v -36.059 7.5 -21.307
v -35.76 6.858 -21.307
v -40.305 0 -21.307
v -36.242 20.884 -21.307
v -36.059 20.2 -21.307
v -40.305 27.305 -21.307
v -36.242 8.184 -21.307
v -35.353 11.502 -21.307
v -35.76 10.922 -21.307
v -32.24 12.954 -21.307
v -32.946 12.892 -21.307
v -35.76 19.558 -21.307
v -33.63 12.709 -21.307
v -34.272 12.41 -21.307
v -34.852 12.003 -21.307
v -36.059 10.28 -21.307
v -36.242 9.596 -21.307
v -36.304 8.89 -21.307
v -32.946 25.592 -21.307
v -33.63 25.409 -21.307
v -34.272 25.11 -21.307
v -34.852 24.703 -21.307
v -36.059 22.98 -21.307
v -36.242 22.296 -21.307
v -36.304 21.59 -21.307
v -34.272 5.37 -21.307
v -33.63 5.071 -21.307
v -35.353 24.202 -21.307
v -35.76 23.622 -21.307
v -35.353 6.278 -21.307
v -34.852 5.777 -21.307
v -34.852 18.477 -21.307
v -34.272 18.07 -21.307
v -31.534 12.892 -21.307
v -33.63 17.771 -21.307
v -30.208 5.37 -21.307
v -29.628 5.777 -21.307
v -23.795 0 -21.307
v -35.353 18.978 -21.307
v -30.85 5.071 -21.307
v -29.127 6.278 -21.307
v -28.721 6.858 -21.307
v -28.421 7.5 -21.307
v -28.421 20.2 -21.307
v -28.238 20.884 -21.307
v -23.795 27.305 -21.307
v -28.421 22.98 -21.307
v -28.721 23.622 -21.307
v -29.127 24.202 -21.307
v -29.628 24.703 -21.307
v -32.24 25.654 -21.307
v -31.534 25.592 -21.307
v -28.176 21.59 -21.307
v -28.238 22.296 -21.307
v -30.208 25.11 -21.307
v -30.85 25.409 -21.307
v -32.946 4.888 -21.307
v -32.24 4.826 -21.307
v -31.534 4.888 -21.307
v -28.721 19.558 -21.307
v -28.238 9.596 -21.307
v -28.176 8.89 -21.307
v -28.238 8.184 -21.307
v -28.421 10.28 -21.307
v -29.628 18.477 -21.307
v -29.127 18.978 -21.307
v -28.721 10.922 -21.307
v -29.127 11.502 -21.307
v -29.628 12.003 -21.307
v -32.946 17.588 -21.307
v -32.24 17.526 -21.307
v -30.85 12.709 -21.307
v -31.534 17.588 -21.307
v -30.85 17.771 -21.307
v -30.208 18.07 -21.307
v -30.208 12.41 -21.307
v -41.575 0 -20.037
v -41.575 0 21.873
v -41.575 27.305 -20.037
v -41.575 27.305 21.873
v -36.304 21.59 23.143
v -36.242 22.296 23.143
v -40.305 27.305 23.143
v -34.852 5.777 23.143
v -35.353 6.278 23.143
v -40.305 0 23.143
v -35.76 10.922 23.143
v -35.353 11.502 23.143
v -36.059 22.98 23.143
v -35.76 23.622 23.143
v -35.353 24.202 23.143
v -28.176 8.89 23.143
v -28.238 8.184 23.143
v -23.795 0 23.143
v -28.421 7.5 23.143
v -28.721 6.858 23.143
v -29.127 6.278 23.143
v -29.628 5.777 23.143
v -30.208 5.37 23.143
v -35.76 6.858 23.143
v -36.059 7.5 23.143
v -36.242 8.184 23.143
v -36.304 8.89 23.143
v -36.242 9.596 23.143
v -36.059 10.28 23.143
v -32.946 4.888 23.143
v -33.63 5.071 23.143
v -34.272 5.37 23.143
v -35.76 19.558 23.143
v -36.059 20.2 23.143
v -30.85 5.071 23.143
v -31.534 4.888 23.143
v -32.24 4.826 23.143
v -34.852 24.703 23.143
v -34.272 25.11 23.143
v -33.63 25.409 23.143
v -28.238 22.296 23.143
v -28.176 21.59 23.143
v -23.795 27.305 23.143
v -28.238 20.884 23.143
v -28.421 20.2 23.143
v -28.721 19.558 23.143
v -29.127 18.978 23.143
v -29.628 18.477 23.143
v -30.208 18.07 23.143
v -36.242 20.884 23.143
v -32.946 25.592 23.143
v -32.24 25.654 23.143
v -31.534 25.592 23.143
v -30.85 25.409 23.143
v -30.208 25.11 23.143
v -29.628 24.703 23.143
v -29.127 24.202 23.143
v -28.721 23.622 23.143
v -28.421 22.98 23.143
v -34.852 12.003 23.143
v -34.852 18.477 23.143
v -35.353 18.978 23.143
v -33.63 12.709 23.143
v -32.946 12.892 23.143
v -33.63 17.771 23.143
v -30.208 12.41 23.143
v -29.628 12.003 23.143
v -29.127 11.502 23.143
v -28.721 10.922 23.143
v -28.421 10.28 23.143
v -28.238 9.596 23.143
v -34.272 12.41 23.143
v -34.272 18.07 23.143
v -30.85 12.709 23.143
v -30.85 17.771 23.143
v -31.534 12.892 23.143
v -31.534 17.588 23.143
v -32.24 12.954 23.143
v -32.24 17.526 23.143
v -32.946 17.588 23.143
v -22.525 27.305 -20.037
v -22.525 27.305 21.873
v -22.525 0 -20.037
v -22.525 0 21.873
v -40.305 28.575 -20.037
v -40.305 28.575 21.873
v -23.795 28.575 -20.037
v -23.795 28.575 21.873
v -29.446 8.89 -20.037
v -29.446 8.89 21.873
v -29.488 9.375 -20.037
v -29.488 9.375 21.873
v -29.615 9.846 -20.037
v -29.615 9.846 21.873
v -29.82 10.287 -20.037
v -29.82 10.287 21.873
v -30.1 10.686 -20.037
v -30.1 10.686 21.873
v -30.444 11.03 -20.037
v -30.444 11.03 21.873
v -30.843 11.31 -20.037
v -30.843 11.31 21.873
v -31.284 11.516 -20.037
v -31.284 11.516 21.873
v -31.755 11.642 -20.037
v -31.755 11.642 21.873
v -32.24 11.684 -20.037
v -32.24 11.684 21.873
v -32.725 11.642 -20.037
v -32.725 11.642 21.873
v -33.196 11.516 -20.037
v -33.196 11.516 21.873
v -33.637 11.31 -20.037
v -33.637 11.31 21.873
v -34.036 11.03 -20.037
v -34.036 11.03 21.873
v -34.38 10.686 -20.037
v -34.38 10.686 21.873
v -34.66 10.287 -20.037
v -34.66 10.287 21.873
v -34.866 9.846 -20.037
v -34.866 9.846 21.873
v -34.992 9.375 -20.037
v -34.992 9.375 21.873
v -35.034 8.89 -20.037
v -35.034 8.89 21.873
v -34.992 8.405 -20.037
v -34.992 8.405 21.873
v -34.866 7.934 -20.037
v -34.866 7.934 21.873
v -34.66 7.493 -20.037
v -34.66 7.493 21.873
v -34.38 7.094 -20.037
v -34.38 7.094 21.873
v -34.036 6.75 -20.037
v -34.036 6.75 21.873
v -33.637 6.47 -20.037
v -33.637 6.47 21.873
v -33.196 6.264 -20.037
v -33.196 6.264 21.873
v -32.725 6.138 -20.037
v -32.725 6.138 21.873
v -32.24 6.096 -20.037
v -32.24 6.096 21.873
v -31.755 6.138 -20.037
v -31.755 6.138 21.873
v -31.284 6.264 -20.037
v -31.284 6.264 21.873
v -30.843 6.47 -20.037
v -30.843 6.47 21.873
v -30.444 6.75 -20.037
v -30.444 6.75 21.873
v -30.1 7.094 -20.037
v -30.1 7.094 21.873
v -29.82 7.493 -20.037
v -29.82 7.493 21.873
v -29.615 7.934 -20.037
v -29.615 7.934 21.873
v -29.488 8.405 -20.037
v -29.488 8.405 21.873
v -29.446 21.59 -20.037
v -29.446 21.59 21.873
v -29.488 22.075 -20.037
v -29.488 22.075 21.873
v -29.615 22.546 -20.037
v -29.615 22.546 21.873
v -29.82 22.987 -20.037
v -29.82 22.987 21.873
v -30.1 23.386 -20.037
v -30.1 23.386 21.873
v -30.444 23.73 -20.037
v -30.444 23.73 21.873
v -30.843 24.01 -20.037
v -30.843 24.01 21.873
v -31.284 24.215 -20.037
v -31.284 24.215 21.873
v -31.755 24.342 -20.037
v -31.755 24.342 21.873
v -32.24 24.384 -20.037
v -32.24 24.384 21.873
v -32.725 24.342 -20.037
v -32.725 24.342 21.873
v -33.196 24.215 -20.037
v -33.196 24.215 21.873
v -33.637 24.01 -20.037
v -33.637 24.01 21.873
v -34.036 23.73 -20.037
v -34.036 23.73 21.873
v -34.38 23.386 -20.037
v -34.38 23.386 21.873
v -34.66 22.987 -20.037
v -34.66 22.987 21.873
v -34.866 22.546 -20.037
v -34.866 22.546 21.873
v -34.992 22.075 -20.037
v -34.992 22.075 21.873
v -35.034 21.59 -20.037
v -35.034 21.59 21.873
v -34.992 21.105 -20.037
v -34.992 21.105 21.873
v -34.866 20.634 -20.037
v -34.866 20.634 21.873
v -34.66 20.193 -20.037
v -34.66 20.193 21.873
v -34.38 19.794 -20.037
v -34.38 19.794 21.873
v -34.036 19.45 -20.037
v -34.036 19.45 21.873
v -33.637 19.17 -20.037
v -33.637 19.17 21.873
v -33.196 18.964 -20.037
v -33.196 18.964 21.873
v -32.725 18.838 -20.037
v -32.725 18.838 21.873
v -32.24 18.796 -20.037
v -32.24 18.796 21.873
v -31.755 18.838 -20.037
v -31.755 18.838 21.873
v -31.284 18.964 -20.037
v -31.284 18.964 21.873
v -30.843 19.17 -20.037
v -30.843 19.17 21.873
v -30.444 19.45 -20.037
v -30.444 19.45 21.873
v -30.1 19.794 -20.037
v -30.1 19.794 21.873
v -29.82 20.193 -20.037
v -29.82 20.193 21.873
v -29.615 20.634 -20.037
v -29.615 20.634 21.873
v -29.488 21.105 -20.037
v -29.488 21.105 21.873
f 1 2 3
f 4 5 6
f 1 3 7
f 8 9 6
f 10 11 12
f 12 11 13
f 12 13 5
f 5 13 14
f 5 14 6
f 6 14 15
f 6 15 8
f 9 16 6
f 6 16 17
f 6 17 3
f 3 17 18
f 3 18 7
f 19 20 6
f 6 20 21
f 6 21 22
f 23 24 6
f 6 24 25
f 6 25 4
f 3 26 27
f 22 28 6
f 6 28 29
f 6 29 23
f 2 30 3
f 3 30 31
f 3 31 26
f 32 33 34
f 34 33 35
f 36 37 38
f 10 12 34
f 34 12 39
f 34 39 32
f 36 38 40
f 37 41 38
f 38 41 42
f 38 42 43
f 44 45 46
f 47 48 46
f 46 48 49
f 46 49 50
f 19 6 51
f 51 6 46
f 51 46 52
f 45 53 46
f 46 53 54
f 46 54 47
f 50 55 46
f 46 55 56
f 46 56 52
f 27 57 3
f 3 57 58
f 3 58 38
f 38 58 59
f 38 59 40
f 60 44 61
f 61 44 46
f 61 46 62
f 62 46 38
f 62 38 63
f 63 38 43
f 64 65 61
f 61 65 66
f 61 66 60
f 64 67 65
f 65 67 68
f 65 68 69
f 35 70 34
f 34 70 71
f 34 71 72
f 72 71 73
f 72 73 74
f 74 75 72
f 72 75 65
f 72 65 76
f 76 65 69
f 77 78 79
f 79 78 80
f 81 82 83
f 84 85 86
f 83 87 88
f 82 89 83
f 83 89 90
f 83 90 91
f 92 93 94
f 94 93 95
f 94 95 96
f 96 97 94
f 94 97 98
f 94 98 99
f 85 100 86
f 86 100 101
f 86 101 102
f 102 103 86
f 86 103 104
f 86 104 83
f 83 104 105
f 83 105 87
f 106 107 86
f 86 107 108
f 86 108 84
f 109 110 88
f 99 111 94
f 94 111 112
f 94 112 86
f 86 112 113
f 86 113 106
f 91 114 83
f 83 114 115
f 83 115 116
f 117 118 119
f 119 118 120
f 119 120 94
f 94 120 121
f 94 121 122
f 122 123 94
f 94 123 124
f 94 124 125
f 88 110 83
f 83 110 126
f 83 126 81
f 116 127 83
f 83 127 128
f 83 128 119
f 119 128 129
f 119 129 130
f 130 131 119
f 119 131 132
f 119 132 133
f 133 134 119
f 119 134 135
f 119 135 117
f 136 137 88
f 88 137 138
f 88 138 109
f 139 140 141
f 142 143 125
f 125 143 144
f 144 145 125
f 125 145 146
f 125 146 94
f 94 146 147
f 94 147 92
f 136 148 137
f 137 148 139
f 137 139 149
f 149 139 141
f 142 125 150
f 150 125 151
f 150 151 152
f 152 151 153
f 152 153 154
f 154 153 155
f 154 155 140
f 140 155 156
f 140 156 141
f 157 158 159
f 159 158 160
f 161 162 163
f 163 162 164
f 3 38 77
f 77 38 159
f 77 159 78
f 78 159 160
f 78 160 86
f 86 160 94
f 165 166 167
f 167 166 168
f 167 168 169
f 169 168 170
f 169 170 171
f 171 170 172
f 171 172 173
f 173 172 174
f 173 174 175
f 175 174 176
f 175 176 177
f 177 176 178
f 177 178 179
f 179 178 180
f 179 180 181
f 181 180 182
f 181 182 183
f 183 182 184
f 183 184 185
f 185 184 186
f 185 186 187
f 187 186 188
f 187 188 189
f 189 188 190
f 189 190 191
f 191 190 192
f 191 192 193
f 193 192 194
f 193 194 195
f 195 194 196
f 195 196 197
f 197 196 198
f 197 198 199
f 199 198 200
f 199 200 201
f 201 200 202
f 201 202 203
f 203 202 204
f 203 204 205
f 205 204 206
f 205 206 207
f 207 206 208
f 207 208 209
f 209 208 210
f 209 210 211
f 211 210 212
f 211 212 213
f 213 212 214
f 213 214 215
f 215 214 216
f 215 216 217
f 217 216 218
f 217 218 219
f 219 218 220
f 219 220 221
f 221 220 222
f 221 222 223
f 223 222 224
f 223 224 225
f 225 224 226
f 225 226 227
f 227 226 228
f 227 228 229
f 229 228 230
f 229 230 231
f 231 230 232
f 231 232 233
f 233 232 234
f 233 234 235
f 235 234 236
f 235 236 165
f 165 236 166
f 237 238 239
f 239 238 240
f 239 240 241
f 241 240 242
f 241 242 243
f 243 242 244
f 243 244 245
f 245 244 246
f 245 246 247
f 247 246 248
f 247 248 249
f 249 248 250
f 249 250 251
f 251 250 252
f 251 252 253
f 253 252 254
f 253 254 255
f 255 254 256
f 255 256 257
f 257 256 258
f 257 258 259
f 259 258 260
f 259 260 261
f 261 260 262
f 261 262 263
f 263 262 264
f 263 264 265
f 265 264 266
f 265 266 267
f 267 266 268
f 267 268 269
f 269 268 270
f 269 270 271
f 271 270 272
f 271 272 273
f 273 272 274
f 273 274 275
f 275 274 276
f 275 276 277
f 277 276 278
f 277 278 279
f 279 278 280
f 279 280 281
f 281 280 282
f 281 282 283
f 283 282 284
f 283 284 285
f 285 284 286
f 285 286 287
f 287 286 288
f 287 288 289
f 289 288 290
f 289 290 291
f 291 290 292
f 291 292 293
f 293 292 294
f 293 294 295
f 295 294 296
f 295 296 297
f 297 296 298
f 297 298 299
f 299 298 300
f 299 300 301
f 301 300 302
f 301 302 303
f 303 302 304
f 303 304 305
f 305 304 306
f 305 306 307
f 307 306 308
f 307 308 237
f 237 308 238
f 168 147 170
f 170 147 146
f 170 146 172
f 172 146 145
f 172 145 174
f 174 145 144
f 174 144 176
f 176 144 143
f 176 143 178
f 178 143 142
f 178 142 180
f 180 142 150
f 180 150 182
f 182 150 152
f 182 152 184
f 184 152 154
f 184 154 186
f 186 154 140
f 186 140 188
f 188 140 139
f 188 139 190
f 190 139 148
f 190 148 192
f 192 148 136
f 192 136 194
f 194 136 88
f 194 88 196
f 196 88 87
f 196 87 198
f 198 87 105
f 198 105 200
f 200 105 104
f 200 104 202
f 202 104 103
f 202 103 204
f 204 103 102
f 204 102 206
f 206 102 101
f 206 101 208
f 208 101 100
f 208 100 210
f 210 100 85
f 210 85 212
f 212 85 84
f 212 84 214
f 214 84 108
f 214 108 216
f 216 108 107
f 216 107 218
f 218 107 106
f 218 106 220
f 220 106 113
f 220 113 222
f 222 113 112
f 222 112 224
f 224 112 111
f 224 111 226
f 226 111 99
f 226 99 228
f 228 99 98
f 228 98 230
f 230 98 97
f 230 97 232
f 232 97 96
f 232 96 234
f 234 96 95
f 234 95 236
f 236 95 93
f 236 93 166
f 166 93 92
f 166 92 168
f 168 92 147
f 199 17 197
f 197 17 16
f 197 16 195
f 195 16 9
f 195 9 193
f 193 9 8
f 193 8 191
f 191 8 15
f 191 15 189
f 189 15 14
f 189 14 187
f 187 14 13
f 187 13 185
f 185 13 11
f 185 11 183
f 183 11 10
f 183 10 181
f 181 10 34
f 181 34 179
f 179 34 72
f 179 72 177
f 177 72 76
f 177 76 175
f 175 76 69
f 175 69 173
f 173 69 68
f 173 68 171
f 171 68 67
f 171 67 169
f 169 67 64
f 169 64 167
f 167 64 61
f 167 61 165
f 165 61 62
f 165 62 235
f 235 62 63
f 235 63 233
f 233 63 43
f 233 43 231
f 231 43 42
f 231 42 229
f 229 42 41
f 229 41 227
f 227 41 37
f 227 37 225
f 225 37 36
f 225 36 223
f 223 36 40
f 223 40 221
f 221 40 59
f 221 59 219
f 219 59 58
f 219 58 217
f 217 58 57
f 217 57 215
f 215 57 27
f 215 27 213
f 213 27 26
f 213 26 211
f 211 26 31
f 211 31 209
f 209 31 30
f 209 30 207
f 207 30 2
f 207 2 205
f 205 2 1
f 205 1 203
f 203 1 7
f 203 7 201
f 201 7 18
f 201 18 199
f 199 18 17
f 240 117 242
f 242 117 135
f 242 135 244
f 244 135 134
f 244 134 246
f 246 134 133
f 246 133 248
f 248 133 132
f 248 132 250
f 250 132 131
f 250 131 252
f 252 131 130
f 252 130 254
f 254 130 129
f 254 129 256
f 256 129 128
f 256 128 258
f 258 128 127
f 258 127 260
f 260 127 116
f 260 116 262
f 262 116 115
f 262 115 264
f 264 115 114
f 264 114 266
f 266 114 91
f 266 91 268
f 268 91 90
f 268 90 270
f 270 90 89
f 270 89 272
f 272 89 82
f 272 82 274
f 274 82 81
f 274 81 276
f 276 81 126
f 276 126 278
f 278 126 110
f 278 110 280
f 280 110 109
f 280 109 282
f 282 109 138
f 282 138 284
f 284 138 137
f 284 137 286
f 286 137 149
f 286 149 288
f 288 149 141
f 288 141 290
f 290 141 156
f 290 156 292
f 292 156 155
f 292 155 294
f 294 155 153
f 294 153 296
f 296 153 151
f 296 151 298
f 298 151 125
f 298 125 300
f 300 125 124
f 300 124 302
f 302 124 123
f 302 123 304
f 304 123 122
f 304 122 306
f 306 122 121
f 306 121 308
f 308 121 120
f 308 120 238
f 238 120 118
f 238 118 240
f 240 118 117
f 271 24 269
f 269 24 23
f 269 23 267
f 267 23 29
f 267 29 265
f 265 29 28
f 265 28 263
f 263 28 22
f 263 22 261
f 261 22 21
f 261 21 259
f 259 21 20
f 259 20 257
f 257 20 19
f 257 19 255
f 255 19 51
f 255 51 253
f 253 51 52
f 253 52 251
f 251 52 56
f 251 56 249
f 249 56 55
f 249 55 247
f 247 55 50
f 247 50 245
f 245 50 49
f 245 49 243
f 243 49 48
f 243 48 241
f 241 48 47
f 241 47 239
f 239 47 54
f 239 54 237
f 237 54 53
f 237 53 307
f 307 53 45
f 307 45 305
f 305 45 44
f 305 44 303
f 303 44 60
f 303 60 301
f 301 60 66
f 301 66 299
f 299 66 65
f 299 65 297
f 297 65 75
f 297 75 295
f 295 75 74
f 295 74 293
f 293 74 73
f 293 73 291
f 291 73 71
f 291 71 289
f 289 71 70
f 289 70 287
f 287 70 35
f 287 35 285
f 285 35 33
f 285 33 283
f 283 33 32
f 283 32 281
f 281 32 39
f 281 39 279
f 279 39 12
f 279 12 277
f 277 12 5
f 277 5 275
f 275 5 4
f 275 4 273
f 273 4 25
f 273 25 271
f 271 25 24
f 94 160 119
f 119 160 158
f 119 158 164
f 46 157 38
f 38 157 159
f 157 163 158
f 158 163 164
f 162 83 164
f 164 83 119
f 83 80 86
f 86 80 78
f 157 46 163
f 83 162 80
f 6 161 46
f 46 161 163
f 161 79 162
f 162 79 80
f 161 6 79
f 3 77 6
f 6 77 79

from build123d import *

# Parameters (mm, degrees)
SKETCH1_W           = 19.05
SKETCH1_H           = 44.45
BOSS_EXTRUDE1_DEPTH = 28.575
SKETCH3_R           = 2.794
CUT_EXTRUDE2_DEPTH  = 68.236705218
CHAMFER2_SIZE       = 1.27


with BuildPart() as part:
    # Sketch1 → Boss-Extrude1 (new body)
    with BuildSketch(Plane(origin=(0, 0, 0), x_dir=(1, 0, 0), z_dir=(0, 1, 0))):
        with Locations((-32.049528302, -0.918054245)):
            Rectangle(SKETCH1_W, SKETCH1_H)
    extrude(amount=BOSS_EXTRUDE1_DEPTH)

    # Sketch3 → Cut-Extrude2 (cut, through all)
    with BuildSketch(Plane.XY.offset(23.143054245)):
        with Locations((-32.240028302, 34.29)):
            Circle(SKETCH3_R)
        with Locations((-32.240028302, 21.59)):
            Circle(SKETCH3_R)
        with Locations((-32.240028302, 8.89)):
            Circle(SKETCH3_R)
    extrude(amount=-CUT_EXTRUDE2_DEPTH, mode=Mode.SUBTRACT)

    # Chamfer2
    chamfer2_edges = [part.edges().sort_by_distance(p)[0] for p in [
        (-32.049528302, 28.575, 23.143054245),
        (-22.524528302, 28.575, 0.918054245),
        (-35.034028302, 21.59, -21.306945755),
        (-35.034028302, 21.59, 23.143054245),
        (-35.034028302, 8.89, -21.306945755),
        (-35.034028302, 8.89, 23.143054245),
        (-32.049528302, 28.575, -21.306945755),
        (-22.524528302, 14.2875, -21.306945755),
        (-22.524528302, 14.2875, 23.143054245),
        (-41.574528302, 14.2875, 23.143054245),
        (-41.574528302, 14.2875, -21.306945755),
        (-41.574528302, 28.575, 0.918054245),
    ]]
    chamfer(chamfer2_edges, length=CHAMFER2_SIZE)


solid = part.part
